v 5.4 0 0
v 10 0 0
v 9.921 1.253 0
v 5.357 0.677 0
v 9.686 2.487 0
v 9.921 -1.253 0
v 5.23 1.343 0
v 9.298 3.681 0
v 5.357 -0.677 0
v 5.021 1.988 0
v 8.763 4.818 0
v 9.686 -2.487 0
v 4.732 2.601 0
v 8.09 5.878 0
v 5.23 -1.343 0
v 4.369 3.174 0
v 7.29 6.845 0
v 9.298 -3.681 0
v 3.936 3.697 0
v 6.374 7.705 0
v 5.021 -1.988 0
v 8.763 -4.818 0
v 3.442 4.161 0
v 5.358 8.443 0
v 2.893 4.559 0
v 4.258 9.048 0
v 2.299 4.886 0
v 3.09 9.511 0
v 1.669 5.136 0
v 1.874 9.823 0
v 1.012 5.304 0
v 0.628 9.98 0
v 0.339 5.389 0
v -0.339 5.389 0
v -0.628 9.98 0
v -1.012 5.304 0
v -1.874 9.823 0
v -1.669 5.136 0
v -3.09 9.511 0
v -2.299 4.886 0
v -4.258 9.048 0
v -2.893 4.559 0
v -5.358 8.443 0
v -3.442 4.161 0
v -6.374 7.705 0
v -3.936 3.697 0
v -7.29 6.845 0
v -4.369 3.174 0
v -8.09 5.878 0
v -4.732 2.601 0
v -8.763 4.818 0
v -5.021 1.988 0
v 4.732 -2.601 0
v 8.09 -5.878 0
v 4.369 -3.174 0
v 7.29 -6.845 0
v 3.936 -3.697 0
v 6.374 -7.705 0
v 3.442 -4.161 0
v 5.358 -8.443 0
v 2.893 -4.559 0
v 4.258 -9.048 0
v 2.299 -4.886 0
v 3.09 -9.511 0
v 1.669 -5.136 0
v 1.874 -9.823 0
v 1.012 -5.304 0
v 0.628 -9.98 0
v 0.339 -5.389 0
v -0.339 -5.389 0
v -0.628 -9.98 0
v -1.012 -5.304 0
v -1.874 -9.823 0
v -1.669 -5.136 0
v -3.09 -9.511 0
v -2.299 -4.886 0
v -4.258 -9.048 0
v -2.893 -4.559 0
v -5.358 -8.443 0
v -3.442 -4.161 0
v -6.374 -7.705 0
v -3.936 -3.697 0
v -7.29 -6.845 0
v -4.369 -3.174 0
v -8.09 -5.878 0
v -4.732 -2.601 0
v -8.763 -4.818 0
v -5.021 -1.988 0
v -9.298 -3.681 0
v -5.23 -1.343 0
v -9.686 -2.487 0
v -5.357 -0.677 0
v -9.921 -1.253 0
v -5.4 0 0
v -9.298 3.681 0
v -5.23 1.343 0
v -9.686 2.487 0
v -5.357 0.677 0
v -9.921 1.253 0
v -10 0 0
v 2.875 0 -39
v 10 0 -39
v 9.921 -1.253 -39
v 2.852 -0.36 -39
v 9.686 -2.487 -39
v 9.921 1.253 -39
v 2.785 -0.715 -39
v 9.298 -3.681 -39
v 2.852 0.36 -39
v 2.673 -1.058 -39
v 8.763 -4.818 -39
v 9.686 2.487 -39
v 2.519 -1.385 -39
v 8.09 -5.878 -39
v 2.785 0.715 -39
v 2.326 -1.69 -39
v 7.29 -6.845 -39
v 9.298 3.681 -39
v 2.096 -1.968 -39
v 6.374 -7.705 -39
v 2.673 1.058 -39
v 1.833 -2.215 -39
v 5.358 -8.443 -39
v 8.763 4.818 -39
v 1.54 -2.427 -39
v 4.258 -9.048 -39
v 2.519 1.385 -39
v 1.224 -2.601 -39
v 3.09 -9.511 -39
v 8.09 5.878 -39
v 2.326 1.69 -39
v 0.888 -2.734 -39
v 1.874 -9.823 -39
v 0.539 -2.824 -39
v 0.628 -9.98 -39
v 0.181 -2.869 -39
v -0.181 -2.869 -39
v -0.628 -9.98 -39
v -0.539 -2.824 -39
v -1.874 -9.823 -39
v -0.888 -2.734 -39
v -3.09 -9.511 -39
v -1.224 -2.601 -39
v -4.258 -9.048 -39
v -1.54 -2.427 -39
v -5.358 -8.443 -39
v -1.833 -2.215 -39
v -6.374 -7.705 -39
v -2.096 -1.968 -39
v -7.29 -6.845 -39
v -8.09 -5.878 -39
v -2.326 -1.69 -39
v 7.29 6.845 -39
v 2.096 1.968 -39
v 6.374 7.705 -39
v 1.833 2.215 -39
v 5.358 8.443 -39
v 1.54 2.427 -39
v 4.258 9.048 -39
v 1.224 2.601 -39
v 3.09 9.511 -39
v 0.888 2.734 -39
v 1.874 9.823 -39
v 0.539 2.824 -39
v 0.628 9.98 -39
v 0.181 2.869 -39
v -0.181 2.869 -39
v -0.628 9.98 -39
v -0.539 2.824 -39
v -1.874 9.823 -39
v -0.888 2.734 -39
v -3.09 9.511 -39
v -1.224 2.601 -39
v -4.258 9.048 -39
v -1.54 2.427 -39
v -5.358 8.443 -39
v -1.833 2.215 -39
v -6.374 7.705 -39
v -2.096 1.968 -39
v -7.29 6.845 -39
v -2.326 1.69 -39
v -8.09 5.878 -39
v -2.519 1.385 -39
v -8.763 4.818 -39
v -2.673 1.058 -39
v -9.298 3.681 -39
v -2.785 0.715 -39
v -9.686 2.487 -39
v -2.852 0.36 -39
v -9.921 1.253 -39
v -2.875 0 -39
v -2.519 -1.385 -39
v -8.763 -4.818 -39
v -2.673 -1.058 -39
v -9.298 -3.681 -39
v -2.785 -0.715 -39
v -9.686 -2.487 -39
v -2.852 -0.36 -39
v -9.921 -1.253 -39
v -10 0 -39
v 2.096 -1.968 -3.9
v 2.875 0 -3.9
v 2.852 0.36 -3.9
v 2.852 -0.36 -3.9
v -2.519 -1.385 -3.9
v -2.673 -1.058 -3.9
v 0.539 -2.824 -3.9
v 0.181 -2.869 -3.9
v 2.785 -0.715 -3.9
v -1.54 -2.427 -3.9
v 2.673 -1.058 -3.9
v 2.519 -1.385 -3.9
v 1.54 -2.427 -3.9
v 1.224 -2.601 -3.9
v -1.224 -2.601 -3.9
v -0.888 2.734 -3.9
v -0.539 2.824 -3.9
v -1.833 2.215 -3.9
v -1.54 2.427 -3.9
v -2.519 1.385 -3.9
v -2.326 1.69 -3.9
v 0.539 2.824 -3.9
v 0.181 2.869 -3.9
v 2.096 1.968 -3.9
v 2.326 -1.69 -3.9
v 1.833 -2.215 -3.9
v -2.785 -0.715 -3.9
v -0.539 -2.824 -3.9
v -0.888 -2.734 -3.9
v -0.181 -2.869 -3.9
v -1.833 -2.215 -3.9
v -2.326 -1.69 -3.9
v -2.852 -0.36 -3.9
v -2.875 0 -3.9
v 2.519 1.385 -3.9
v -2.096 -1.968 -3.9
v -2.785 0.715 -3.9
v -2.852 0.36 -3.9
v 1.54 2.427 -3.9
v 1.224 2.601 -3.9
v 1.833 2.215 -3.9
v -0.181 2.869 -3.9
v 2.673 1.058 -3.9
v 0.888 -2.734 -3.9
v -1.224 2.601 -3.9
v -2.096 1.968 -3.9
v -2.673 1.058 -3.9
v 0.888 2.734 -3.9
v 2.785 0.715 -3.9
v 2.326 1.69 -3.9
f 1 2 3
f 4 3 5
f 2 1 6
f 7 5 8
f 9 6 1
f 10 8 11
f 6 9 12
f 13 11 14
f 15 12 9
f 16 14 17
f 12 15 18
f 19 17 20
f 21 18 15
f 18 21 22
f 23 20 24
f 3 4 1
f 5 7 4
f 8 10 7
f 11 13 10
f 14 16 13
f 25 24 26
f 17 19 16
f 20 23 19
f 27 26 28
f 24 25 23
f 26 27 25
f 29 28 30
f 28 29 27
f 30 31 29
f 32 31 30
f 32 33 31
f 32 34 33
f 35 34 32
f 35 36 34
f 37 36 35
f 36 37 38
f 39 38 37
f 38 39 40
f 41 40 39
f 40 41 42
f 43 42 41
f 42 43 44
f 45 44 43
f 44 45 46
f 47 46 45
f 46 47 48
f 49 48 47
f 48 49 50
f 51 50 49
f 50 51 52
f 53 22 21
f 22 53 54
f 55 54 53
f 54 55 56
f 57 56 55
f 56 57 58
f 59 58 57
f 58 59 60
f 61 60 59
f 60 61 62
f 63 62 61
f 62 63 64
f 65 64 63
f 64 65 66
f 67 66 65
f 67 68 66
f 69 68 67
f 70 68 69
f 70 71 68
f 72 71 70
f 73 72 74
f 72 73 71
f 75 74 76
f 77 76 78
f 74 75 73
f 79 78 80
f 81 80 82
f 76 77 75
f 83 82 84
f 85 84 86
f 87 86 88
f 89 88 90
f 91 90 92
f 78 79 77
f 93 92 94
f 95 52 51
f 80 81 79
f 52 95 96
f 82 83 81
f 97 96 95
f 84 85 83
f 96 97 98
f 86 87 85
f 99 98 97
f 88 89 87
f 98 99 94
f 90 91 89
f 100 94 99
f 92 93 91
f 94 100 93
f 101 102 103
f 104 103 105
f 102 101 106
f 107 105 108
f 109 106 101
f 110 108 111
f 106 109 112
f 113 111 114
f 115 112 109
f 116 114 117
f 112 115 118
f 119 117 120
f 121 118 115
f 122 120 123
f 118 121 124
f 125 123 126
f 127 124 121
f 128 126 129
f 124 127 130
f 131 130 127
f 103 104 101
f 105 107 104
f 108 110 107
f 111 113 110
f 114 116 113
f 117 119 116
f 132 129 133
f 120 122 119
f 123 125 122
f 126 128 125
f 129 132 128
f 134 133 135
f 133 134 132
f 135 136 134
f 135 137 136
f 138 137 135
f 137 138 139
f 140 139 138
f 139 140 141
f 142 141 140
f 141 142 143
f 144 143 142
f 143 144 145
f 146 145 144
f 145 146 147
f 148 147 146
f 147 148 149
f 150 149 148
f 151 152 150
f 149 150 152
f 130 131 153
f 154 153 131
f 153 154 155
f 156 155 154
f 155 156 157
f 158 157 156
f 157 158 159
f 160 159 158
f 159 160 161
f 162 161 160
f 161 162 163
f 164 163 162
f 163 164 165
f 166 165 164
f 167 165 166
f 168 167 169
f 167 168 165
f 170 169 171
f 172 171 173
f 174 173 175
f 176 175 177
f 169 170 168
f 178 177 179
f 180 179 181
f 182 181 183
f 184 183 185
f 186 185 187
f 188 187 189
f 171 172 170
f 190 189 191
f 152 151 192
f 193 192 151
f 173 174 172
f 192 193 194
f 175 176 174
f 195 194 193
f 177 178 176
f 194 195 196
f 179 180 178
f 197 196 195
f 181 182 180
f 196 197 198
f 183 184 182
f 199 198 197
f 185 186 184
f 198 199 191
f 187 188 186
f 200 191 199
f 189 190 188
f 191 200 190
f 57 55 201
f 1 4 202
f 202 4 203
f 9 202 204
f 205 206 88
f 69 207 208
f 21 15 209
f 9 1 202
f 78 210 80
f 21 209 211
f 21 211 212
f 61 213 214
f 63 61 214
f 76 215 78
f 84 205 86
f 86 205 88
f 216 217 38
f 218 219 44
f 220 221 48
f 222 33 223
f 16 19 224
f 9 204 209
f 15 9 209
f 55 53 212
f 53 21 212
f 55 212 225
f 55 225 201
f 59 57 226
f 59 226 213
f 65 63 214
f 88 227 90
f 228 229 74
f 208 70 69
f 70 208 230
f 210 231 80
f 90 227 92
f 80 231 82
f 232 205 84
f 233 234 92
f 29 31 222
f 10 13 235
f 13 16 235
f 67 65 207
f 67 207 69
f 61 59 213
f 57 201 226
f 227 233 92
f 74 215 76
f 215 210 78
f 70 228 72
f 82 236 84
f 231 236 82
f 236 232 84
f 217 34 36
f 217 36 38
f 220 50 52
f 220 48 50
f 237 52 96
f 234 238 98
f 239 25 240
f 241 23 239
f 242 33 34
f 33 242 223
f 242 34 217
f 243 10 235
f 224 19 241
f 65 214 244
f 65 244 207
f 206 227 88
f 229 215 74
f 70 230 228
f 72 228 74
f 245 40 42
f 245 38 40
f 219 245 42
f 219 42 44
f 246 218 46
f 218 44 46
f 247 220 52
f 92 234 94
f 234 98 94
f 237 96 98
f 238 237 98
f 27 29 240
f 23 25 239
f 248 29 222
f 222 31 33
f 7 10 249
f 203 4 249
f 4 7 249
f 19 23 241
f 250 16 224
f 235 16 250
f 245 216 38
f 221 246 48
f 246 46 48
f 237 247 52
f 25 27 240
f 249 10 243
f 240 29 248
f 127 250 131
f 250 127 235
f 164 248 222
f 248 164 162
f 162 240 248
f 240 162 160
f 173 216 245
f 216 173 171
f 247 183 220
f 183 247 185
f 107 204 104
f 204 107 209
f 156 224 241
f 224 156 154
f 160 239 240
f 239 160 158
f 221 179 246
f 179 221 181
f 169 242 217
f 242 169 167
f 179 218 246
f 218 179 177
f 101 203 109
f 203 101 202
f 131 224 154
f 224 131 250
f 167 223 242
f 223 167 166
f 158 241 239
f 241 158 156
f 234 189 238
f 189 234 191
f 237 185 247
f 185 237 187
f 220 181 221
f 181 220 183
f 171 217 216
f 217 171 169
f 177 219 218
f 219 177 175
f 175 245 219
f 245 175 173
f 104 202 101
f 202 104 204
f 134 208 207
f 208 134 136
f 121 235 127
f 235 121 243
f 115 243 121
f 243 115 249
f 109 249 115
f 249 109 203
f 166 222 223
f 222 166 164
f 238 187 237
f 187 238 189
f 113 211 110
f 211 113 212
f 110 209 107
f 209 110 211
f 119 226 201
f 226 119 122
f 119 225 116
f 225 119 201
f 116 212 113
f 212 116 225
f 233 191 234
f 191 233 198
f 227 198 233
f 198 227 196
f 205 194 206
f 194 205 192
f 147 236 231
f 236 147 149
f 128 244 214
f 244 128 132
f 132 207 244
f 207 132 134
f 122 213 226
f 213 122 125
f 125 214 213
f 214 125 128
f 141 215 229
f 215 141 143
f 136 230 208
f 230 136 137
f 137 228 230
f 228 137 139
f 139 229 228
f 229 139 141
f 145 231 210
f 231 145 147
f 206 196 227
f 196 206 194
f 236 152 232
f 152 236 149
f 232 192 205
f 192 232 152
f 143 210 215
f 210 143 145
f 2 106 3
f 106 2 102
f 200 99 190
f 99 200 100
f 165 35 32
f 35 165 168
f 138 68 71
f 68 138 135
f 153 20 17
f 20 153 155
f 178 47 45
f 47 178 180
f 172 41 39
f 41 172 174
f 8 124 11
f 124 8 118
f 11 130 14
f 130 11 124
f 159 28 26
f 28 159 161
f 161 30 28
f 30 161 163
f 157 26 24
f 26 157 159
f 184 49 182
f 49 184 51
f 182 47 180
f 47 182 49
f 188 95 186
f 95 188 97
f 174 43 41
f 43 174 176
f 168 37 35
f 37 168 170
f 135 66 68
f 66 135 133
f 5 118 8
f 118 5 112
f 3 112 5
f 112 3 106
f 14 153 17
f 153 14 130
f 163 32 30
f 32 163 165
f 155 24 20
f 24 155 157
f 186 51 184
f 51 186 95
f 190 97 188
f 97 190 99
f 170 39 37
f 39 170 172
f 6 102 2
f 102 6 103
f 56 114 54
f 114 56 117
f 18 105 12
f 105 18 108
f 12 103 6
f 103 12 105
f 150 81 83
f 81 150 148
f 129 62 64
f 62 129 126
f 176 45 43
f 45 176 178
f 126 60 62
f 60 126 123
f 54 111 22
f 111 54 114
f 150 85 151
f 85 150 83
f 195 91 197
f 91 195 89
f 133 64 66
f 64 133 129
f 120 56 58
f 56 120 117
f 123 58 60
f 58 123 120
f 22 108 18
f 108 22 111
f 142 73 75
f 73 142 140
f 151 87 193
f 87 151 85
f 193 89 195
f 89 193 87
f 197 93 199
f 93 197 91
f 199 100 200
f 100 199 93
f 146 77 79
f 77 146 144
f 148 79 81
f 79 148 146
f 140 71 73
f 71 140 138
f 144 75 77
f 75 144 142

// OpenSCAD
$fn = 50;


difference() {
	union() {
		translate(v = [0, 0, -39.0000000000]) {
			cylinder(h = 39, r = 10.0000000000);
		}
		cylinder(h = 0, r = 13.0000000000);
	}
	union() {
		translate(v = [0, 0, 0]) {
			rotate(a = [0, 0, 0]) {
				difference() {
					union() {
						#translate(v = [0, 0, -39.0000000000]) {
							cylinder(h = 39, r = 2.6000000000);
						}
						#translate(v = [0, 0, -3.9000000000]) {
							cylinder(h = 3.9000000000, r = 10.0000000000, r1 = 2.8750000000, r2 = 5.4000000000);
						}
						#translate(v = [0, 0, -39.0000000000]) {
							cylinder(h = 39, r = 2.8750000000);
						}
						#translate(v = [0, 0, -39.0000000000]) {
							cylinder(h = 39, r = 2.6000000000);
						}
					}
					union();
				}
			}
		}
	}
}
